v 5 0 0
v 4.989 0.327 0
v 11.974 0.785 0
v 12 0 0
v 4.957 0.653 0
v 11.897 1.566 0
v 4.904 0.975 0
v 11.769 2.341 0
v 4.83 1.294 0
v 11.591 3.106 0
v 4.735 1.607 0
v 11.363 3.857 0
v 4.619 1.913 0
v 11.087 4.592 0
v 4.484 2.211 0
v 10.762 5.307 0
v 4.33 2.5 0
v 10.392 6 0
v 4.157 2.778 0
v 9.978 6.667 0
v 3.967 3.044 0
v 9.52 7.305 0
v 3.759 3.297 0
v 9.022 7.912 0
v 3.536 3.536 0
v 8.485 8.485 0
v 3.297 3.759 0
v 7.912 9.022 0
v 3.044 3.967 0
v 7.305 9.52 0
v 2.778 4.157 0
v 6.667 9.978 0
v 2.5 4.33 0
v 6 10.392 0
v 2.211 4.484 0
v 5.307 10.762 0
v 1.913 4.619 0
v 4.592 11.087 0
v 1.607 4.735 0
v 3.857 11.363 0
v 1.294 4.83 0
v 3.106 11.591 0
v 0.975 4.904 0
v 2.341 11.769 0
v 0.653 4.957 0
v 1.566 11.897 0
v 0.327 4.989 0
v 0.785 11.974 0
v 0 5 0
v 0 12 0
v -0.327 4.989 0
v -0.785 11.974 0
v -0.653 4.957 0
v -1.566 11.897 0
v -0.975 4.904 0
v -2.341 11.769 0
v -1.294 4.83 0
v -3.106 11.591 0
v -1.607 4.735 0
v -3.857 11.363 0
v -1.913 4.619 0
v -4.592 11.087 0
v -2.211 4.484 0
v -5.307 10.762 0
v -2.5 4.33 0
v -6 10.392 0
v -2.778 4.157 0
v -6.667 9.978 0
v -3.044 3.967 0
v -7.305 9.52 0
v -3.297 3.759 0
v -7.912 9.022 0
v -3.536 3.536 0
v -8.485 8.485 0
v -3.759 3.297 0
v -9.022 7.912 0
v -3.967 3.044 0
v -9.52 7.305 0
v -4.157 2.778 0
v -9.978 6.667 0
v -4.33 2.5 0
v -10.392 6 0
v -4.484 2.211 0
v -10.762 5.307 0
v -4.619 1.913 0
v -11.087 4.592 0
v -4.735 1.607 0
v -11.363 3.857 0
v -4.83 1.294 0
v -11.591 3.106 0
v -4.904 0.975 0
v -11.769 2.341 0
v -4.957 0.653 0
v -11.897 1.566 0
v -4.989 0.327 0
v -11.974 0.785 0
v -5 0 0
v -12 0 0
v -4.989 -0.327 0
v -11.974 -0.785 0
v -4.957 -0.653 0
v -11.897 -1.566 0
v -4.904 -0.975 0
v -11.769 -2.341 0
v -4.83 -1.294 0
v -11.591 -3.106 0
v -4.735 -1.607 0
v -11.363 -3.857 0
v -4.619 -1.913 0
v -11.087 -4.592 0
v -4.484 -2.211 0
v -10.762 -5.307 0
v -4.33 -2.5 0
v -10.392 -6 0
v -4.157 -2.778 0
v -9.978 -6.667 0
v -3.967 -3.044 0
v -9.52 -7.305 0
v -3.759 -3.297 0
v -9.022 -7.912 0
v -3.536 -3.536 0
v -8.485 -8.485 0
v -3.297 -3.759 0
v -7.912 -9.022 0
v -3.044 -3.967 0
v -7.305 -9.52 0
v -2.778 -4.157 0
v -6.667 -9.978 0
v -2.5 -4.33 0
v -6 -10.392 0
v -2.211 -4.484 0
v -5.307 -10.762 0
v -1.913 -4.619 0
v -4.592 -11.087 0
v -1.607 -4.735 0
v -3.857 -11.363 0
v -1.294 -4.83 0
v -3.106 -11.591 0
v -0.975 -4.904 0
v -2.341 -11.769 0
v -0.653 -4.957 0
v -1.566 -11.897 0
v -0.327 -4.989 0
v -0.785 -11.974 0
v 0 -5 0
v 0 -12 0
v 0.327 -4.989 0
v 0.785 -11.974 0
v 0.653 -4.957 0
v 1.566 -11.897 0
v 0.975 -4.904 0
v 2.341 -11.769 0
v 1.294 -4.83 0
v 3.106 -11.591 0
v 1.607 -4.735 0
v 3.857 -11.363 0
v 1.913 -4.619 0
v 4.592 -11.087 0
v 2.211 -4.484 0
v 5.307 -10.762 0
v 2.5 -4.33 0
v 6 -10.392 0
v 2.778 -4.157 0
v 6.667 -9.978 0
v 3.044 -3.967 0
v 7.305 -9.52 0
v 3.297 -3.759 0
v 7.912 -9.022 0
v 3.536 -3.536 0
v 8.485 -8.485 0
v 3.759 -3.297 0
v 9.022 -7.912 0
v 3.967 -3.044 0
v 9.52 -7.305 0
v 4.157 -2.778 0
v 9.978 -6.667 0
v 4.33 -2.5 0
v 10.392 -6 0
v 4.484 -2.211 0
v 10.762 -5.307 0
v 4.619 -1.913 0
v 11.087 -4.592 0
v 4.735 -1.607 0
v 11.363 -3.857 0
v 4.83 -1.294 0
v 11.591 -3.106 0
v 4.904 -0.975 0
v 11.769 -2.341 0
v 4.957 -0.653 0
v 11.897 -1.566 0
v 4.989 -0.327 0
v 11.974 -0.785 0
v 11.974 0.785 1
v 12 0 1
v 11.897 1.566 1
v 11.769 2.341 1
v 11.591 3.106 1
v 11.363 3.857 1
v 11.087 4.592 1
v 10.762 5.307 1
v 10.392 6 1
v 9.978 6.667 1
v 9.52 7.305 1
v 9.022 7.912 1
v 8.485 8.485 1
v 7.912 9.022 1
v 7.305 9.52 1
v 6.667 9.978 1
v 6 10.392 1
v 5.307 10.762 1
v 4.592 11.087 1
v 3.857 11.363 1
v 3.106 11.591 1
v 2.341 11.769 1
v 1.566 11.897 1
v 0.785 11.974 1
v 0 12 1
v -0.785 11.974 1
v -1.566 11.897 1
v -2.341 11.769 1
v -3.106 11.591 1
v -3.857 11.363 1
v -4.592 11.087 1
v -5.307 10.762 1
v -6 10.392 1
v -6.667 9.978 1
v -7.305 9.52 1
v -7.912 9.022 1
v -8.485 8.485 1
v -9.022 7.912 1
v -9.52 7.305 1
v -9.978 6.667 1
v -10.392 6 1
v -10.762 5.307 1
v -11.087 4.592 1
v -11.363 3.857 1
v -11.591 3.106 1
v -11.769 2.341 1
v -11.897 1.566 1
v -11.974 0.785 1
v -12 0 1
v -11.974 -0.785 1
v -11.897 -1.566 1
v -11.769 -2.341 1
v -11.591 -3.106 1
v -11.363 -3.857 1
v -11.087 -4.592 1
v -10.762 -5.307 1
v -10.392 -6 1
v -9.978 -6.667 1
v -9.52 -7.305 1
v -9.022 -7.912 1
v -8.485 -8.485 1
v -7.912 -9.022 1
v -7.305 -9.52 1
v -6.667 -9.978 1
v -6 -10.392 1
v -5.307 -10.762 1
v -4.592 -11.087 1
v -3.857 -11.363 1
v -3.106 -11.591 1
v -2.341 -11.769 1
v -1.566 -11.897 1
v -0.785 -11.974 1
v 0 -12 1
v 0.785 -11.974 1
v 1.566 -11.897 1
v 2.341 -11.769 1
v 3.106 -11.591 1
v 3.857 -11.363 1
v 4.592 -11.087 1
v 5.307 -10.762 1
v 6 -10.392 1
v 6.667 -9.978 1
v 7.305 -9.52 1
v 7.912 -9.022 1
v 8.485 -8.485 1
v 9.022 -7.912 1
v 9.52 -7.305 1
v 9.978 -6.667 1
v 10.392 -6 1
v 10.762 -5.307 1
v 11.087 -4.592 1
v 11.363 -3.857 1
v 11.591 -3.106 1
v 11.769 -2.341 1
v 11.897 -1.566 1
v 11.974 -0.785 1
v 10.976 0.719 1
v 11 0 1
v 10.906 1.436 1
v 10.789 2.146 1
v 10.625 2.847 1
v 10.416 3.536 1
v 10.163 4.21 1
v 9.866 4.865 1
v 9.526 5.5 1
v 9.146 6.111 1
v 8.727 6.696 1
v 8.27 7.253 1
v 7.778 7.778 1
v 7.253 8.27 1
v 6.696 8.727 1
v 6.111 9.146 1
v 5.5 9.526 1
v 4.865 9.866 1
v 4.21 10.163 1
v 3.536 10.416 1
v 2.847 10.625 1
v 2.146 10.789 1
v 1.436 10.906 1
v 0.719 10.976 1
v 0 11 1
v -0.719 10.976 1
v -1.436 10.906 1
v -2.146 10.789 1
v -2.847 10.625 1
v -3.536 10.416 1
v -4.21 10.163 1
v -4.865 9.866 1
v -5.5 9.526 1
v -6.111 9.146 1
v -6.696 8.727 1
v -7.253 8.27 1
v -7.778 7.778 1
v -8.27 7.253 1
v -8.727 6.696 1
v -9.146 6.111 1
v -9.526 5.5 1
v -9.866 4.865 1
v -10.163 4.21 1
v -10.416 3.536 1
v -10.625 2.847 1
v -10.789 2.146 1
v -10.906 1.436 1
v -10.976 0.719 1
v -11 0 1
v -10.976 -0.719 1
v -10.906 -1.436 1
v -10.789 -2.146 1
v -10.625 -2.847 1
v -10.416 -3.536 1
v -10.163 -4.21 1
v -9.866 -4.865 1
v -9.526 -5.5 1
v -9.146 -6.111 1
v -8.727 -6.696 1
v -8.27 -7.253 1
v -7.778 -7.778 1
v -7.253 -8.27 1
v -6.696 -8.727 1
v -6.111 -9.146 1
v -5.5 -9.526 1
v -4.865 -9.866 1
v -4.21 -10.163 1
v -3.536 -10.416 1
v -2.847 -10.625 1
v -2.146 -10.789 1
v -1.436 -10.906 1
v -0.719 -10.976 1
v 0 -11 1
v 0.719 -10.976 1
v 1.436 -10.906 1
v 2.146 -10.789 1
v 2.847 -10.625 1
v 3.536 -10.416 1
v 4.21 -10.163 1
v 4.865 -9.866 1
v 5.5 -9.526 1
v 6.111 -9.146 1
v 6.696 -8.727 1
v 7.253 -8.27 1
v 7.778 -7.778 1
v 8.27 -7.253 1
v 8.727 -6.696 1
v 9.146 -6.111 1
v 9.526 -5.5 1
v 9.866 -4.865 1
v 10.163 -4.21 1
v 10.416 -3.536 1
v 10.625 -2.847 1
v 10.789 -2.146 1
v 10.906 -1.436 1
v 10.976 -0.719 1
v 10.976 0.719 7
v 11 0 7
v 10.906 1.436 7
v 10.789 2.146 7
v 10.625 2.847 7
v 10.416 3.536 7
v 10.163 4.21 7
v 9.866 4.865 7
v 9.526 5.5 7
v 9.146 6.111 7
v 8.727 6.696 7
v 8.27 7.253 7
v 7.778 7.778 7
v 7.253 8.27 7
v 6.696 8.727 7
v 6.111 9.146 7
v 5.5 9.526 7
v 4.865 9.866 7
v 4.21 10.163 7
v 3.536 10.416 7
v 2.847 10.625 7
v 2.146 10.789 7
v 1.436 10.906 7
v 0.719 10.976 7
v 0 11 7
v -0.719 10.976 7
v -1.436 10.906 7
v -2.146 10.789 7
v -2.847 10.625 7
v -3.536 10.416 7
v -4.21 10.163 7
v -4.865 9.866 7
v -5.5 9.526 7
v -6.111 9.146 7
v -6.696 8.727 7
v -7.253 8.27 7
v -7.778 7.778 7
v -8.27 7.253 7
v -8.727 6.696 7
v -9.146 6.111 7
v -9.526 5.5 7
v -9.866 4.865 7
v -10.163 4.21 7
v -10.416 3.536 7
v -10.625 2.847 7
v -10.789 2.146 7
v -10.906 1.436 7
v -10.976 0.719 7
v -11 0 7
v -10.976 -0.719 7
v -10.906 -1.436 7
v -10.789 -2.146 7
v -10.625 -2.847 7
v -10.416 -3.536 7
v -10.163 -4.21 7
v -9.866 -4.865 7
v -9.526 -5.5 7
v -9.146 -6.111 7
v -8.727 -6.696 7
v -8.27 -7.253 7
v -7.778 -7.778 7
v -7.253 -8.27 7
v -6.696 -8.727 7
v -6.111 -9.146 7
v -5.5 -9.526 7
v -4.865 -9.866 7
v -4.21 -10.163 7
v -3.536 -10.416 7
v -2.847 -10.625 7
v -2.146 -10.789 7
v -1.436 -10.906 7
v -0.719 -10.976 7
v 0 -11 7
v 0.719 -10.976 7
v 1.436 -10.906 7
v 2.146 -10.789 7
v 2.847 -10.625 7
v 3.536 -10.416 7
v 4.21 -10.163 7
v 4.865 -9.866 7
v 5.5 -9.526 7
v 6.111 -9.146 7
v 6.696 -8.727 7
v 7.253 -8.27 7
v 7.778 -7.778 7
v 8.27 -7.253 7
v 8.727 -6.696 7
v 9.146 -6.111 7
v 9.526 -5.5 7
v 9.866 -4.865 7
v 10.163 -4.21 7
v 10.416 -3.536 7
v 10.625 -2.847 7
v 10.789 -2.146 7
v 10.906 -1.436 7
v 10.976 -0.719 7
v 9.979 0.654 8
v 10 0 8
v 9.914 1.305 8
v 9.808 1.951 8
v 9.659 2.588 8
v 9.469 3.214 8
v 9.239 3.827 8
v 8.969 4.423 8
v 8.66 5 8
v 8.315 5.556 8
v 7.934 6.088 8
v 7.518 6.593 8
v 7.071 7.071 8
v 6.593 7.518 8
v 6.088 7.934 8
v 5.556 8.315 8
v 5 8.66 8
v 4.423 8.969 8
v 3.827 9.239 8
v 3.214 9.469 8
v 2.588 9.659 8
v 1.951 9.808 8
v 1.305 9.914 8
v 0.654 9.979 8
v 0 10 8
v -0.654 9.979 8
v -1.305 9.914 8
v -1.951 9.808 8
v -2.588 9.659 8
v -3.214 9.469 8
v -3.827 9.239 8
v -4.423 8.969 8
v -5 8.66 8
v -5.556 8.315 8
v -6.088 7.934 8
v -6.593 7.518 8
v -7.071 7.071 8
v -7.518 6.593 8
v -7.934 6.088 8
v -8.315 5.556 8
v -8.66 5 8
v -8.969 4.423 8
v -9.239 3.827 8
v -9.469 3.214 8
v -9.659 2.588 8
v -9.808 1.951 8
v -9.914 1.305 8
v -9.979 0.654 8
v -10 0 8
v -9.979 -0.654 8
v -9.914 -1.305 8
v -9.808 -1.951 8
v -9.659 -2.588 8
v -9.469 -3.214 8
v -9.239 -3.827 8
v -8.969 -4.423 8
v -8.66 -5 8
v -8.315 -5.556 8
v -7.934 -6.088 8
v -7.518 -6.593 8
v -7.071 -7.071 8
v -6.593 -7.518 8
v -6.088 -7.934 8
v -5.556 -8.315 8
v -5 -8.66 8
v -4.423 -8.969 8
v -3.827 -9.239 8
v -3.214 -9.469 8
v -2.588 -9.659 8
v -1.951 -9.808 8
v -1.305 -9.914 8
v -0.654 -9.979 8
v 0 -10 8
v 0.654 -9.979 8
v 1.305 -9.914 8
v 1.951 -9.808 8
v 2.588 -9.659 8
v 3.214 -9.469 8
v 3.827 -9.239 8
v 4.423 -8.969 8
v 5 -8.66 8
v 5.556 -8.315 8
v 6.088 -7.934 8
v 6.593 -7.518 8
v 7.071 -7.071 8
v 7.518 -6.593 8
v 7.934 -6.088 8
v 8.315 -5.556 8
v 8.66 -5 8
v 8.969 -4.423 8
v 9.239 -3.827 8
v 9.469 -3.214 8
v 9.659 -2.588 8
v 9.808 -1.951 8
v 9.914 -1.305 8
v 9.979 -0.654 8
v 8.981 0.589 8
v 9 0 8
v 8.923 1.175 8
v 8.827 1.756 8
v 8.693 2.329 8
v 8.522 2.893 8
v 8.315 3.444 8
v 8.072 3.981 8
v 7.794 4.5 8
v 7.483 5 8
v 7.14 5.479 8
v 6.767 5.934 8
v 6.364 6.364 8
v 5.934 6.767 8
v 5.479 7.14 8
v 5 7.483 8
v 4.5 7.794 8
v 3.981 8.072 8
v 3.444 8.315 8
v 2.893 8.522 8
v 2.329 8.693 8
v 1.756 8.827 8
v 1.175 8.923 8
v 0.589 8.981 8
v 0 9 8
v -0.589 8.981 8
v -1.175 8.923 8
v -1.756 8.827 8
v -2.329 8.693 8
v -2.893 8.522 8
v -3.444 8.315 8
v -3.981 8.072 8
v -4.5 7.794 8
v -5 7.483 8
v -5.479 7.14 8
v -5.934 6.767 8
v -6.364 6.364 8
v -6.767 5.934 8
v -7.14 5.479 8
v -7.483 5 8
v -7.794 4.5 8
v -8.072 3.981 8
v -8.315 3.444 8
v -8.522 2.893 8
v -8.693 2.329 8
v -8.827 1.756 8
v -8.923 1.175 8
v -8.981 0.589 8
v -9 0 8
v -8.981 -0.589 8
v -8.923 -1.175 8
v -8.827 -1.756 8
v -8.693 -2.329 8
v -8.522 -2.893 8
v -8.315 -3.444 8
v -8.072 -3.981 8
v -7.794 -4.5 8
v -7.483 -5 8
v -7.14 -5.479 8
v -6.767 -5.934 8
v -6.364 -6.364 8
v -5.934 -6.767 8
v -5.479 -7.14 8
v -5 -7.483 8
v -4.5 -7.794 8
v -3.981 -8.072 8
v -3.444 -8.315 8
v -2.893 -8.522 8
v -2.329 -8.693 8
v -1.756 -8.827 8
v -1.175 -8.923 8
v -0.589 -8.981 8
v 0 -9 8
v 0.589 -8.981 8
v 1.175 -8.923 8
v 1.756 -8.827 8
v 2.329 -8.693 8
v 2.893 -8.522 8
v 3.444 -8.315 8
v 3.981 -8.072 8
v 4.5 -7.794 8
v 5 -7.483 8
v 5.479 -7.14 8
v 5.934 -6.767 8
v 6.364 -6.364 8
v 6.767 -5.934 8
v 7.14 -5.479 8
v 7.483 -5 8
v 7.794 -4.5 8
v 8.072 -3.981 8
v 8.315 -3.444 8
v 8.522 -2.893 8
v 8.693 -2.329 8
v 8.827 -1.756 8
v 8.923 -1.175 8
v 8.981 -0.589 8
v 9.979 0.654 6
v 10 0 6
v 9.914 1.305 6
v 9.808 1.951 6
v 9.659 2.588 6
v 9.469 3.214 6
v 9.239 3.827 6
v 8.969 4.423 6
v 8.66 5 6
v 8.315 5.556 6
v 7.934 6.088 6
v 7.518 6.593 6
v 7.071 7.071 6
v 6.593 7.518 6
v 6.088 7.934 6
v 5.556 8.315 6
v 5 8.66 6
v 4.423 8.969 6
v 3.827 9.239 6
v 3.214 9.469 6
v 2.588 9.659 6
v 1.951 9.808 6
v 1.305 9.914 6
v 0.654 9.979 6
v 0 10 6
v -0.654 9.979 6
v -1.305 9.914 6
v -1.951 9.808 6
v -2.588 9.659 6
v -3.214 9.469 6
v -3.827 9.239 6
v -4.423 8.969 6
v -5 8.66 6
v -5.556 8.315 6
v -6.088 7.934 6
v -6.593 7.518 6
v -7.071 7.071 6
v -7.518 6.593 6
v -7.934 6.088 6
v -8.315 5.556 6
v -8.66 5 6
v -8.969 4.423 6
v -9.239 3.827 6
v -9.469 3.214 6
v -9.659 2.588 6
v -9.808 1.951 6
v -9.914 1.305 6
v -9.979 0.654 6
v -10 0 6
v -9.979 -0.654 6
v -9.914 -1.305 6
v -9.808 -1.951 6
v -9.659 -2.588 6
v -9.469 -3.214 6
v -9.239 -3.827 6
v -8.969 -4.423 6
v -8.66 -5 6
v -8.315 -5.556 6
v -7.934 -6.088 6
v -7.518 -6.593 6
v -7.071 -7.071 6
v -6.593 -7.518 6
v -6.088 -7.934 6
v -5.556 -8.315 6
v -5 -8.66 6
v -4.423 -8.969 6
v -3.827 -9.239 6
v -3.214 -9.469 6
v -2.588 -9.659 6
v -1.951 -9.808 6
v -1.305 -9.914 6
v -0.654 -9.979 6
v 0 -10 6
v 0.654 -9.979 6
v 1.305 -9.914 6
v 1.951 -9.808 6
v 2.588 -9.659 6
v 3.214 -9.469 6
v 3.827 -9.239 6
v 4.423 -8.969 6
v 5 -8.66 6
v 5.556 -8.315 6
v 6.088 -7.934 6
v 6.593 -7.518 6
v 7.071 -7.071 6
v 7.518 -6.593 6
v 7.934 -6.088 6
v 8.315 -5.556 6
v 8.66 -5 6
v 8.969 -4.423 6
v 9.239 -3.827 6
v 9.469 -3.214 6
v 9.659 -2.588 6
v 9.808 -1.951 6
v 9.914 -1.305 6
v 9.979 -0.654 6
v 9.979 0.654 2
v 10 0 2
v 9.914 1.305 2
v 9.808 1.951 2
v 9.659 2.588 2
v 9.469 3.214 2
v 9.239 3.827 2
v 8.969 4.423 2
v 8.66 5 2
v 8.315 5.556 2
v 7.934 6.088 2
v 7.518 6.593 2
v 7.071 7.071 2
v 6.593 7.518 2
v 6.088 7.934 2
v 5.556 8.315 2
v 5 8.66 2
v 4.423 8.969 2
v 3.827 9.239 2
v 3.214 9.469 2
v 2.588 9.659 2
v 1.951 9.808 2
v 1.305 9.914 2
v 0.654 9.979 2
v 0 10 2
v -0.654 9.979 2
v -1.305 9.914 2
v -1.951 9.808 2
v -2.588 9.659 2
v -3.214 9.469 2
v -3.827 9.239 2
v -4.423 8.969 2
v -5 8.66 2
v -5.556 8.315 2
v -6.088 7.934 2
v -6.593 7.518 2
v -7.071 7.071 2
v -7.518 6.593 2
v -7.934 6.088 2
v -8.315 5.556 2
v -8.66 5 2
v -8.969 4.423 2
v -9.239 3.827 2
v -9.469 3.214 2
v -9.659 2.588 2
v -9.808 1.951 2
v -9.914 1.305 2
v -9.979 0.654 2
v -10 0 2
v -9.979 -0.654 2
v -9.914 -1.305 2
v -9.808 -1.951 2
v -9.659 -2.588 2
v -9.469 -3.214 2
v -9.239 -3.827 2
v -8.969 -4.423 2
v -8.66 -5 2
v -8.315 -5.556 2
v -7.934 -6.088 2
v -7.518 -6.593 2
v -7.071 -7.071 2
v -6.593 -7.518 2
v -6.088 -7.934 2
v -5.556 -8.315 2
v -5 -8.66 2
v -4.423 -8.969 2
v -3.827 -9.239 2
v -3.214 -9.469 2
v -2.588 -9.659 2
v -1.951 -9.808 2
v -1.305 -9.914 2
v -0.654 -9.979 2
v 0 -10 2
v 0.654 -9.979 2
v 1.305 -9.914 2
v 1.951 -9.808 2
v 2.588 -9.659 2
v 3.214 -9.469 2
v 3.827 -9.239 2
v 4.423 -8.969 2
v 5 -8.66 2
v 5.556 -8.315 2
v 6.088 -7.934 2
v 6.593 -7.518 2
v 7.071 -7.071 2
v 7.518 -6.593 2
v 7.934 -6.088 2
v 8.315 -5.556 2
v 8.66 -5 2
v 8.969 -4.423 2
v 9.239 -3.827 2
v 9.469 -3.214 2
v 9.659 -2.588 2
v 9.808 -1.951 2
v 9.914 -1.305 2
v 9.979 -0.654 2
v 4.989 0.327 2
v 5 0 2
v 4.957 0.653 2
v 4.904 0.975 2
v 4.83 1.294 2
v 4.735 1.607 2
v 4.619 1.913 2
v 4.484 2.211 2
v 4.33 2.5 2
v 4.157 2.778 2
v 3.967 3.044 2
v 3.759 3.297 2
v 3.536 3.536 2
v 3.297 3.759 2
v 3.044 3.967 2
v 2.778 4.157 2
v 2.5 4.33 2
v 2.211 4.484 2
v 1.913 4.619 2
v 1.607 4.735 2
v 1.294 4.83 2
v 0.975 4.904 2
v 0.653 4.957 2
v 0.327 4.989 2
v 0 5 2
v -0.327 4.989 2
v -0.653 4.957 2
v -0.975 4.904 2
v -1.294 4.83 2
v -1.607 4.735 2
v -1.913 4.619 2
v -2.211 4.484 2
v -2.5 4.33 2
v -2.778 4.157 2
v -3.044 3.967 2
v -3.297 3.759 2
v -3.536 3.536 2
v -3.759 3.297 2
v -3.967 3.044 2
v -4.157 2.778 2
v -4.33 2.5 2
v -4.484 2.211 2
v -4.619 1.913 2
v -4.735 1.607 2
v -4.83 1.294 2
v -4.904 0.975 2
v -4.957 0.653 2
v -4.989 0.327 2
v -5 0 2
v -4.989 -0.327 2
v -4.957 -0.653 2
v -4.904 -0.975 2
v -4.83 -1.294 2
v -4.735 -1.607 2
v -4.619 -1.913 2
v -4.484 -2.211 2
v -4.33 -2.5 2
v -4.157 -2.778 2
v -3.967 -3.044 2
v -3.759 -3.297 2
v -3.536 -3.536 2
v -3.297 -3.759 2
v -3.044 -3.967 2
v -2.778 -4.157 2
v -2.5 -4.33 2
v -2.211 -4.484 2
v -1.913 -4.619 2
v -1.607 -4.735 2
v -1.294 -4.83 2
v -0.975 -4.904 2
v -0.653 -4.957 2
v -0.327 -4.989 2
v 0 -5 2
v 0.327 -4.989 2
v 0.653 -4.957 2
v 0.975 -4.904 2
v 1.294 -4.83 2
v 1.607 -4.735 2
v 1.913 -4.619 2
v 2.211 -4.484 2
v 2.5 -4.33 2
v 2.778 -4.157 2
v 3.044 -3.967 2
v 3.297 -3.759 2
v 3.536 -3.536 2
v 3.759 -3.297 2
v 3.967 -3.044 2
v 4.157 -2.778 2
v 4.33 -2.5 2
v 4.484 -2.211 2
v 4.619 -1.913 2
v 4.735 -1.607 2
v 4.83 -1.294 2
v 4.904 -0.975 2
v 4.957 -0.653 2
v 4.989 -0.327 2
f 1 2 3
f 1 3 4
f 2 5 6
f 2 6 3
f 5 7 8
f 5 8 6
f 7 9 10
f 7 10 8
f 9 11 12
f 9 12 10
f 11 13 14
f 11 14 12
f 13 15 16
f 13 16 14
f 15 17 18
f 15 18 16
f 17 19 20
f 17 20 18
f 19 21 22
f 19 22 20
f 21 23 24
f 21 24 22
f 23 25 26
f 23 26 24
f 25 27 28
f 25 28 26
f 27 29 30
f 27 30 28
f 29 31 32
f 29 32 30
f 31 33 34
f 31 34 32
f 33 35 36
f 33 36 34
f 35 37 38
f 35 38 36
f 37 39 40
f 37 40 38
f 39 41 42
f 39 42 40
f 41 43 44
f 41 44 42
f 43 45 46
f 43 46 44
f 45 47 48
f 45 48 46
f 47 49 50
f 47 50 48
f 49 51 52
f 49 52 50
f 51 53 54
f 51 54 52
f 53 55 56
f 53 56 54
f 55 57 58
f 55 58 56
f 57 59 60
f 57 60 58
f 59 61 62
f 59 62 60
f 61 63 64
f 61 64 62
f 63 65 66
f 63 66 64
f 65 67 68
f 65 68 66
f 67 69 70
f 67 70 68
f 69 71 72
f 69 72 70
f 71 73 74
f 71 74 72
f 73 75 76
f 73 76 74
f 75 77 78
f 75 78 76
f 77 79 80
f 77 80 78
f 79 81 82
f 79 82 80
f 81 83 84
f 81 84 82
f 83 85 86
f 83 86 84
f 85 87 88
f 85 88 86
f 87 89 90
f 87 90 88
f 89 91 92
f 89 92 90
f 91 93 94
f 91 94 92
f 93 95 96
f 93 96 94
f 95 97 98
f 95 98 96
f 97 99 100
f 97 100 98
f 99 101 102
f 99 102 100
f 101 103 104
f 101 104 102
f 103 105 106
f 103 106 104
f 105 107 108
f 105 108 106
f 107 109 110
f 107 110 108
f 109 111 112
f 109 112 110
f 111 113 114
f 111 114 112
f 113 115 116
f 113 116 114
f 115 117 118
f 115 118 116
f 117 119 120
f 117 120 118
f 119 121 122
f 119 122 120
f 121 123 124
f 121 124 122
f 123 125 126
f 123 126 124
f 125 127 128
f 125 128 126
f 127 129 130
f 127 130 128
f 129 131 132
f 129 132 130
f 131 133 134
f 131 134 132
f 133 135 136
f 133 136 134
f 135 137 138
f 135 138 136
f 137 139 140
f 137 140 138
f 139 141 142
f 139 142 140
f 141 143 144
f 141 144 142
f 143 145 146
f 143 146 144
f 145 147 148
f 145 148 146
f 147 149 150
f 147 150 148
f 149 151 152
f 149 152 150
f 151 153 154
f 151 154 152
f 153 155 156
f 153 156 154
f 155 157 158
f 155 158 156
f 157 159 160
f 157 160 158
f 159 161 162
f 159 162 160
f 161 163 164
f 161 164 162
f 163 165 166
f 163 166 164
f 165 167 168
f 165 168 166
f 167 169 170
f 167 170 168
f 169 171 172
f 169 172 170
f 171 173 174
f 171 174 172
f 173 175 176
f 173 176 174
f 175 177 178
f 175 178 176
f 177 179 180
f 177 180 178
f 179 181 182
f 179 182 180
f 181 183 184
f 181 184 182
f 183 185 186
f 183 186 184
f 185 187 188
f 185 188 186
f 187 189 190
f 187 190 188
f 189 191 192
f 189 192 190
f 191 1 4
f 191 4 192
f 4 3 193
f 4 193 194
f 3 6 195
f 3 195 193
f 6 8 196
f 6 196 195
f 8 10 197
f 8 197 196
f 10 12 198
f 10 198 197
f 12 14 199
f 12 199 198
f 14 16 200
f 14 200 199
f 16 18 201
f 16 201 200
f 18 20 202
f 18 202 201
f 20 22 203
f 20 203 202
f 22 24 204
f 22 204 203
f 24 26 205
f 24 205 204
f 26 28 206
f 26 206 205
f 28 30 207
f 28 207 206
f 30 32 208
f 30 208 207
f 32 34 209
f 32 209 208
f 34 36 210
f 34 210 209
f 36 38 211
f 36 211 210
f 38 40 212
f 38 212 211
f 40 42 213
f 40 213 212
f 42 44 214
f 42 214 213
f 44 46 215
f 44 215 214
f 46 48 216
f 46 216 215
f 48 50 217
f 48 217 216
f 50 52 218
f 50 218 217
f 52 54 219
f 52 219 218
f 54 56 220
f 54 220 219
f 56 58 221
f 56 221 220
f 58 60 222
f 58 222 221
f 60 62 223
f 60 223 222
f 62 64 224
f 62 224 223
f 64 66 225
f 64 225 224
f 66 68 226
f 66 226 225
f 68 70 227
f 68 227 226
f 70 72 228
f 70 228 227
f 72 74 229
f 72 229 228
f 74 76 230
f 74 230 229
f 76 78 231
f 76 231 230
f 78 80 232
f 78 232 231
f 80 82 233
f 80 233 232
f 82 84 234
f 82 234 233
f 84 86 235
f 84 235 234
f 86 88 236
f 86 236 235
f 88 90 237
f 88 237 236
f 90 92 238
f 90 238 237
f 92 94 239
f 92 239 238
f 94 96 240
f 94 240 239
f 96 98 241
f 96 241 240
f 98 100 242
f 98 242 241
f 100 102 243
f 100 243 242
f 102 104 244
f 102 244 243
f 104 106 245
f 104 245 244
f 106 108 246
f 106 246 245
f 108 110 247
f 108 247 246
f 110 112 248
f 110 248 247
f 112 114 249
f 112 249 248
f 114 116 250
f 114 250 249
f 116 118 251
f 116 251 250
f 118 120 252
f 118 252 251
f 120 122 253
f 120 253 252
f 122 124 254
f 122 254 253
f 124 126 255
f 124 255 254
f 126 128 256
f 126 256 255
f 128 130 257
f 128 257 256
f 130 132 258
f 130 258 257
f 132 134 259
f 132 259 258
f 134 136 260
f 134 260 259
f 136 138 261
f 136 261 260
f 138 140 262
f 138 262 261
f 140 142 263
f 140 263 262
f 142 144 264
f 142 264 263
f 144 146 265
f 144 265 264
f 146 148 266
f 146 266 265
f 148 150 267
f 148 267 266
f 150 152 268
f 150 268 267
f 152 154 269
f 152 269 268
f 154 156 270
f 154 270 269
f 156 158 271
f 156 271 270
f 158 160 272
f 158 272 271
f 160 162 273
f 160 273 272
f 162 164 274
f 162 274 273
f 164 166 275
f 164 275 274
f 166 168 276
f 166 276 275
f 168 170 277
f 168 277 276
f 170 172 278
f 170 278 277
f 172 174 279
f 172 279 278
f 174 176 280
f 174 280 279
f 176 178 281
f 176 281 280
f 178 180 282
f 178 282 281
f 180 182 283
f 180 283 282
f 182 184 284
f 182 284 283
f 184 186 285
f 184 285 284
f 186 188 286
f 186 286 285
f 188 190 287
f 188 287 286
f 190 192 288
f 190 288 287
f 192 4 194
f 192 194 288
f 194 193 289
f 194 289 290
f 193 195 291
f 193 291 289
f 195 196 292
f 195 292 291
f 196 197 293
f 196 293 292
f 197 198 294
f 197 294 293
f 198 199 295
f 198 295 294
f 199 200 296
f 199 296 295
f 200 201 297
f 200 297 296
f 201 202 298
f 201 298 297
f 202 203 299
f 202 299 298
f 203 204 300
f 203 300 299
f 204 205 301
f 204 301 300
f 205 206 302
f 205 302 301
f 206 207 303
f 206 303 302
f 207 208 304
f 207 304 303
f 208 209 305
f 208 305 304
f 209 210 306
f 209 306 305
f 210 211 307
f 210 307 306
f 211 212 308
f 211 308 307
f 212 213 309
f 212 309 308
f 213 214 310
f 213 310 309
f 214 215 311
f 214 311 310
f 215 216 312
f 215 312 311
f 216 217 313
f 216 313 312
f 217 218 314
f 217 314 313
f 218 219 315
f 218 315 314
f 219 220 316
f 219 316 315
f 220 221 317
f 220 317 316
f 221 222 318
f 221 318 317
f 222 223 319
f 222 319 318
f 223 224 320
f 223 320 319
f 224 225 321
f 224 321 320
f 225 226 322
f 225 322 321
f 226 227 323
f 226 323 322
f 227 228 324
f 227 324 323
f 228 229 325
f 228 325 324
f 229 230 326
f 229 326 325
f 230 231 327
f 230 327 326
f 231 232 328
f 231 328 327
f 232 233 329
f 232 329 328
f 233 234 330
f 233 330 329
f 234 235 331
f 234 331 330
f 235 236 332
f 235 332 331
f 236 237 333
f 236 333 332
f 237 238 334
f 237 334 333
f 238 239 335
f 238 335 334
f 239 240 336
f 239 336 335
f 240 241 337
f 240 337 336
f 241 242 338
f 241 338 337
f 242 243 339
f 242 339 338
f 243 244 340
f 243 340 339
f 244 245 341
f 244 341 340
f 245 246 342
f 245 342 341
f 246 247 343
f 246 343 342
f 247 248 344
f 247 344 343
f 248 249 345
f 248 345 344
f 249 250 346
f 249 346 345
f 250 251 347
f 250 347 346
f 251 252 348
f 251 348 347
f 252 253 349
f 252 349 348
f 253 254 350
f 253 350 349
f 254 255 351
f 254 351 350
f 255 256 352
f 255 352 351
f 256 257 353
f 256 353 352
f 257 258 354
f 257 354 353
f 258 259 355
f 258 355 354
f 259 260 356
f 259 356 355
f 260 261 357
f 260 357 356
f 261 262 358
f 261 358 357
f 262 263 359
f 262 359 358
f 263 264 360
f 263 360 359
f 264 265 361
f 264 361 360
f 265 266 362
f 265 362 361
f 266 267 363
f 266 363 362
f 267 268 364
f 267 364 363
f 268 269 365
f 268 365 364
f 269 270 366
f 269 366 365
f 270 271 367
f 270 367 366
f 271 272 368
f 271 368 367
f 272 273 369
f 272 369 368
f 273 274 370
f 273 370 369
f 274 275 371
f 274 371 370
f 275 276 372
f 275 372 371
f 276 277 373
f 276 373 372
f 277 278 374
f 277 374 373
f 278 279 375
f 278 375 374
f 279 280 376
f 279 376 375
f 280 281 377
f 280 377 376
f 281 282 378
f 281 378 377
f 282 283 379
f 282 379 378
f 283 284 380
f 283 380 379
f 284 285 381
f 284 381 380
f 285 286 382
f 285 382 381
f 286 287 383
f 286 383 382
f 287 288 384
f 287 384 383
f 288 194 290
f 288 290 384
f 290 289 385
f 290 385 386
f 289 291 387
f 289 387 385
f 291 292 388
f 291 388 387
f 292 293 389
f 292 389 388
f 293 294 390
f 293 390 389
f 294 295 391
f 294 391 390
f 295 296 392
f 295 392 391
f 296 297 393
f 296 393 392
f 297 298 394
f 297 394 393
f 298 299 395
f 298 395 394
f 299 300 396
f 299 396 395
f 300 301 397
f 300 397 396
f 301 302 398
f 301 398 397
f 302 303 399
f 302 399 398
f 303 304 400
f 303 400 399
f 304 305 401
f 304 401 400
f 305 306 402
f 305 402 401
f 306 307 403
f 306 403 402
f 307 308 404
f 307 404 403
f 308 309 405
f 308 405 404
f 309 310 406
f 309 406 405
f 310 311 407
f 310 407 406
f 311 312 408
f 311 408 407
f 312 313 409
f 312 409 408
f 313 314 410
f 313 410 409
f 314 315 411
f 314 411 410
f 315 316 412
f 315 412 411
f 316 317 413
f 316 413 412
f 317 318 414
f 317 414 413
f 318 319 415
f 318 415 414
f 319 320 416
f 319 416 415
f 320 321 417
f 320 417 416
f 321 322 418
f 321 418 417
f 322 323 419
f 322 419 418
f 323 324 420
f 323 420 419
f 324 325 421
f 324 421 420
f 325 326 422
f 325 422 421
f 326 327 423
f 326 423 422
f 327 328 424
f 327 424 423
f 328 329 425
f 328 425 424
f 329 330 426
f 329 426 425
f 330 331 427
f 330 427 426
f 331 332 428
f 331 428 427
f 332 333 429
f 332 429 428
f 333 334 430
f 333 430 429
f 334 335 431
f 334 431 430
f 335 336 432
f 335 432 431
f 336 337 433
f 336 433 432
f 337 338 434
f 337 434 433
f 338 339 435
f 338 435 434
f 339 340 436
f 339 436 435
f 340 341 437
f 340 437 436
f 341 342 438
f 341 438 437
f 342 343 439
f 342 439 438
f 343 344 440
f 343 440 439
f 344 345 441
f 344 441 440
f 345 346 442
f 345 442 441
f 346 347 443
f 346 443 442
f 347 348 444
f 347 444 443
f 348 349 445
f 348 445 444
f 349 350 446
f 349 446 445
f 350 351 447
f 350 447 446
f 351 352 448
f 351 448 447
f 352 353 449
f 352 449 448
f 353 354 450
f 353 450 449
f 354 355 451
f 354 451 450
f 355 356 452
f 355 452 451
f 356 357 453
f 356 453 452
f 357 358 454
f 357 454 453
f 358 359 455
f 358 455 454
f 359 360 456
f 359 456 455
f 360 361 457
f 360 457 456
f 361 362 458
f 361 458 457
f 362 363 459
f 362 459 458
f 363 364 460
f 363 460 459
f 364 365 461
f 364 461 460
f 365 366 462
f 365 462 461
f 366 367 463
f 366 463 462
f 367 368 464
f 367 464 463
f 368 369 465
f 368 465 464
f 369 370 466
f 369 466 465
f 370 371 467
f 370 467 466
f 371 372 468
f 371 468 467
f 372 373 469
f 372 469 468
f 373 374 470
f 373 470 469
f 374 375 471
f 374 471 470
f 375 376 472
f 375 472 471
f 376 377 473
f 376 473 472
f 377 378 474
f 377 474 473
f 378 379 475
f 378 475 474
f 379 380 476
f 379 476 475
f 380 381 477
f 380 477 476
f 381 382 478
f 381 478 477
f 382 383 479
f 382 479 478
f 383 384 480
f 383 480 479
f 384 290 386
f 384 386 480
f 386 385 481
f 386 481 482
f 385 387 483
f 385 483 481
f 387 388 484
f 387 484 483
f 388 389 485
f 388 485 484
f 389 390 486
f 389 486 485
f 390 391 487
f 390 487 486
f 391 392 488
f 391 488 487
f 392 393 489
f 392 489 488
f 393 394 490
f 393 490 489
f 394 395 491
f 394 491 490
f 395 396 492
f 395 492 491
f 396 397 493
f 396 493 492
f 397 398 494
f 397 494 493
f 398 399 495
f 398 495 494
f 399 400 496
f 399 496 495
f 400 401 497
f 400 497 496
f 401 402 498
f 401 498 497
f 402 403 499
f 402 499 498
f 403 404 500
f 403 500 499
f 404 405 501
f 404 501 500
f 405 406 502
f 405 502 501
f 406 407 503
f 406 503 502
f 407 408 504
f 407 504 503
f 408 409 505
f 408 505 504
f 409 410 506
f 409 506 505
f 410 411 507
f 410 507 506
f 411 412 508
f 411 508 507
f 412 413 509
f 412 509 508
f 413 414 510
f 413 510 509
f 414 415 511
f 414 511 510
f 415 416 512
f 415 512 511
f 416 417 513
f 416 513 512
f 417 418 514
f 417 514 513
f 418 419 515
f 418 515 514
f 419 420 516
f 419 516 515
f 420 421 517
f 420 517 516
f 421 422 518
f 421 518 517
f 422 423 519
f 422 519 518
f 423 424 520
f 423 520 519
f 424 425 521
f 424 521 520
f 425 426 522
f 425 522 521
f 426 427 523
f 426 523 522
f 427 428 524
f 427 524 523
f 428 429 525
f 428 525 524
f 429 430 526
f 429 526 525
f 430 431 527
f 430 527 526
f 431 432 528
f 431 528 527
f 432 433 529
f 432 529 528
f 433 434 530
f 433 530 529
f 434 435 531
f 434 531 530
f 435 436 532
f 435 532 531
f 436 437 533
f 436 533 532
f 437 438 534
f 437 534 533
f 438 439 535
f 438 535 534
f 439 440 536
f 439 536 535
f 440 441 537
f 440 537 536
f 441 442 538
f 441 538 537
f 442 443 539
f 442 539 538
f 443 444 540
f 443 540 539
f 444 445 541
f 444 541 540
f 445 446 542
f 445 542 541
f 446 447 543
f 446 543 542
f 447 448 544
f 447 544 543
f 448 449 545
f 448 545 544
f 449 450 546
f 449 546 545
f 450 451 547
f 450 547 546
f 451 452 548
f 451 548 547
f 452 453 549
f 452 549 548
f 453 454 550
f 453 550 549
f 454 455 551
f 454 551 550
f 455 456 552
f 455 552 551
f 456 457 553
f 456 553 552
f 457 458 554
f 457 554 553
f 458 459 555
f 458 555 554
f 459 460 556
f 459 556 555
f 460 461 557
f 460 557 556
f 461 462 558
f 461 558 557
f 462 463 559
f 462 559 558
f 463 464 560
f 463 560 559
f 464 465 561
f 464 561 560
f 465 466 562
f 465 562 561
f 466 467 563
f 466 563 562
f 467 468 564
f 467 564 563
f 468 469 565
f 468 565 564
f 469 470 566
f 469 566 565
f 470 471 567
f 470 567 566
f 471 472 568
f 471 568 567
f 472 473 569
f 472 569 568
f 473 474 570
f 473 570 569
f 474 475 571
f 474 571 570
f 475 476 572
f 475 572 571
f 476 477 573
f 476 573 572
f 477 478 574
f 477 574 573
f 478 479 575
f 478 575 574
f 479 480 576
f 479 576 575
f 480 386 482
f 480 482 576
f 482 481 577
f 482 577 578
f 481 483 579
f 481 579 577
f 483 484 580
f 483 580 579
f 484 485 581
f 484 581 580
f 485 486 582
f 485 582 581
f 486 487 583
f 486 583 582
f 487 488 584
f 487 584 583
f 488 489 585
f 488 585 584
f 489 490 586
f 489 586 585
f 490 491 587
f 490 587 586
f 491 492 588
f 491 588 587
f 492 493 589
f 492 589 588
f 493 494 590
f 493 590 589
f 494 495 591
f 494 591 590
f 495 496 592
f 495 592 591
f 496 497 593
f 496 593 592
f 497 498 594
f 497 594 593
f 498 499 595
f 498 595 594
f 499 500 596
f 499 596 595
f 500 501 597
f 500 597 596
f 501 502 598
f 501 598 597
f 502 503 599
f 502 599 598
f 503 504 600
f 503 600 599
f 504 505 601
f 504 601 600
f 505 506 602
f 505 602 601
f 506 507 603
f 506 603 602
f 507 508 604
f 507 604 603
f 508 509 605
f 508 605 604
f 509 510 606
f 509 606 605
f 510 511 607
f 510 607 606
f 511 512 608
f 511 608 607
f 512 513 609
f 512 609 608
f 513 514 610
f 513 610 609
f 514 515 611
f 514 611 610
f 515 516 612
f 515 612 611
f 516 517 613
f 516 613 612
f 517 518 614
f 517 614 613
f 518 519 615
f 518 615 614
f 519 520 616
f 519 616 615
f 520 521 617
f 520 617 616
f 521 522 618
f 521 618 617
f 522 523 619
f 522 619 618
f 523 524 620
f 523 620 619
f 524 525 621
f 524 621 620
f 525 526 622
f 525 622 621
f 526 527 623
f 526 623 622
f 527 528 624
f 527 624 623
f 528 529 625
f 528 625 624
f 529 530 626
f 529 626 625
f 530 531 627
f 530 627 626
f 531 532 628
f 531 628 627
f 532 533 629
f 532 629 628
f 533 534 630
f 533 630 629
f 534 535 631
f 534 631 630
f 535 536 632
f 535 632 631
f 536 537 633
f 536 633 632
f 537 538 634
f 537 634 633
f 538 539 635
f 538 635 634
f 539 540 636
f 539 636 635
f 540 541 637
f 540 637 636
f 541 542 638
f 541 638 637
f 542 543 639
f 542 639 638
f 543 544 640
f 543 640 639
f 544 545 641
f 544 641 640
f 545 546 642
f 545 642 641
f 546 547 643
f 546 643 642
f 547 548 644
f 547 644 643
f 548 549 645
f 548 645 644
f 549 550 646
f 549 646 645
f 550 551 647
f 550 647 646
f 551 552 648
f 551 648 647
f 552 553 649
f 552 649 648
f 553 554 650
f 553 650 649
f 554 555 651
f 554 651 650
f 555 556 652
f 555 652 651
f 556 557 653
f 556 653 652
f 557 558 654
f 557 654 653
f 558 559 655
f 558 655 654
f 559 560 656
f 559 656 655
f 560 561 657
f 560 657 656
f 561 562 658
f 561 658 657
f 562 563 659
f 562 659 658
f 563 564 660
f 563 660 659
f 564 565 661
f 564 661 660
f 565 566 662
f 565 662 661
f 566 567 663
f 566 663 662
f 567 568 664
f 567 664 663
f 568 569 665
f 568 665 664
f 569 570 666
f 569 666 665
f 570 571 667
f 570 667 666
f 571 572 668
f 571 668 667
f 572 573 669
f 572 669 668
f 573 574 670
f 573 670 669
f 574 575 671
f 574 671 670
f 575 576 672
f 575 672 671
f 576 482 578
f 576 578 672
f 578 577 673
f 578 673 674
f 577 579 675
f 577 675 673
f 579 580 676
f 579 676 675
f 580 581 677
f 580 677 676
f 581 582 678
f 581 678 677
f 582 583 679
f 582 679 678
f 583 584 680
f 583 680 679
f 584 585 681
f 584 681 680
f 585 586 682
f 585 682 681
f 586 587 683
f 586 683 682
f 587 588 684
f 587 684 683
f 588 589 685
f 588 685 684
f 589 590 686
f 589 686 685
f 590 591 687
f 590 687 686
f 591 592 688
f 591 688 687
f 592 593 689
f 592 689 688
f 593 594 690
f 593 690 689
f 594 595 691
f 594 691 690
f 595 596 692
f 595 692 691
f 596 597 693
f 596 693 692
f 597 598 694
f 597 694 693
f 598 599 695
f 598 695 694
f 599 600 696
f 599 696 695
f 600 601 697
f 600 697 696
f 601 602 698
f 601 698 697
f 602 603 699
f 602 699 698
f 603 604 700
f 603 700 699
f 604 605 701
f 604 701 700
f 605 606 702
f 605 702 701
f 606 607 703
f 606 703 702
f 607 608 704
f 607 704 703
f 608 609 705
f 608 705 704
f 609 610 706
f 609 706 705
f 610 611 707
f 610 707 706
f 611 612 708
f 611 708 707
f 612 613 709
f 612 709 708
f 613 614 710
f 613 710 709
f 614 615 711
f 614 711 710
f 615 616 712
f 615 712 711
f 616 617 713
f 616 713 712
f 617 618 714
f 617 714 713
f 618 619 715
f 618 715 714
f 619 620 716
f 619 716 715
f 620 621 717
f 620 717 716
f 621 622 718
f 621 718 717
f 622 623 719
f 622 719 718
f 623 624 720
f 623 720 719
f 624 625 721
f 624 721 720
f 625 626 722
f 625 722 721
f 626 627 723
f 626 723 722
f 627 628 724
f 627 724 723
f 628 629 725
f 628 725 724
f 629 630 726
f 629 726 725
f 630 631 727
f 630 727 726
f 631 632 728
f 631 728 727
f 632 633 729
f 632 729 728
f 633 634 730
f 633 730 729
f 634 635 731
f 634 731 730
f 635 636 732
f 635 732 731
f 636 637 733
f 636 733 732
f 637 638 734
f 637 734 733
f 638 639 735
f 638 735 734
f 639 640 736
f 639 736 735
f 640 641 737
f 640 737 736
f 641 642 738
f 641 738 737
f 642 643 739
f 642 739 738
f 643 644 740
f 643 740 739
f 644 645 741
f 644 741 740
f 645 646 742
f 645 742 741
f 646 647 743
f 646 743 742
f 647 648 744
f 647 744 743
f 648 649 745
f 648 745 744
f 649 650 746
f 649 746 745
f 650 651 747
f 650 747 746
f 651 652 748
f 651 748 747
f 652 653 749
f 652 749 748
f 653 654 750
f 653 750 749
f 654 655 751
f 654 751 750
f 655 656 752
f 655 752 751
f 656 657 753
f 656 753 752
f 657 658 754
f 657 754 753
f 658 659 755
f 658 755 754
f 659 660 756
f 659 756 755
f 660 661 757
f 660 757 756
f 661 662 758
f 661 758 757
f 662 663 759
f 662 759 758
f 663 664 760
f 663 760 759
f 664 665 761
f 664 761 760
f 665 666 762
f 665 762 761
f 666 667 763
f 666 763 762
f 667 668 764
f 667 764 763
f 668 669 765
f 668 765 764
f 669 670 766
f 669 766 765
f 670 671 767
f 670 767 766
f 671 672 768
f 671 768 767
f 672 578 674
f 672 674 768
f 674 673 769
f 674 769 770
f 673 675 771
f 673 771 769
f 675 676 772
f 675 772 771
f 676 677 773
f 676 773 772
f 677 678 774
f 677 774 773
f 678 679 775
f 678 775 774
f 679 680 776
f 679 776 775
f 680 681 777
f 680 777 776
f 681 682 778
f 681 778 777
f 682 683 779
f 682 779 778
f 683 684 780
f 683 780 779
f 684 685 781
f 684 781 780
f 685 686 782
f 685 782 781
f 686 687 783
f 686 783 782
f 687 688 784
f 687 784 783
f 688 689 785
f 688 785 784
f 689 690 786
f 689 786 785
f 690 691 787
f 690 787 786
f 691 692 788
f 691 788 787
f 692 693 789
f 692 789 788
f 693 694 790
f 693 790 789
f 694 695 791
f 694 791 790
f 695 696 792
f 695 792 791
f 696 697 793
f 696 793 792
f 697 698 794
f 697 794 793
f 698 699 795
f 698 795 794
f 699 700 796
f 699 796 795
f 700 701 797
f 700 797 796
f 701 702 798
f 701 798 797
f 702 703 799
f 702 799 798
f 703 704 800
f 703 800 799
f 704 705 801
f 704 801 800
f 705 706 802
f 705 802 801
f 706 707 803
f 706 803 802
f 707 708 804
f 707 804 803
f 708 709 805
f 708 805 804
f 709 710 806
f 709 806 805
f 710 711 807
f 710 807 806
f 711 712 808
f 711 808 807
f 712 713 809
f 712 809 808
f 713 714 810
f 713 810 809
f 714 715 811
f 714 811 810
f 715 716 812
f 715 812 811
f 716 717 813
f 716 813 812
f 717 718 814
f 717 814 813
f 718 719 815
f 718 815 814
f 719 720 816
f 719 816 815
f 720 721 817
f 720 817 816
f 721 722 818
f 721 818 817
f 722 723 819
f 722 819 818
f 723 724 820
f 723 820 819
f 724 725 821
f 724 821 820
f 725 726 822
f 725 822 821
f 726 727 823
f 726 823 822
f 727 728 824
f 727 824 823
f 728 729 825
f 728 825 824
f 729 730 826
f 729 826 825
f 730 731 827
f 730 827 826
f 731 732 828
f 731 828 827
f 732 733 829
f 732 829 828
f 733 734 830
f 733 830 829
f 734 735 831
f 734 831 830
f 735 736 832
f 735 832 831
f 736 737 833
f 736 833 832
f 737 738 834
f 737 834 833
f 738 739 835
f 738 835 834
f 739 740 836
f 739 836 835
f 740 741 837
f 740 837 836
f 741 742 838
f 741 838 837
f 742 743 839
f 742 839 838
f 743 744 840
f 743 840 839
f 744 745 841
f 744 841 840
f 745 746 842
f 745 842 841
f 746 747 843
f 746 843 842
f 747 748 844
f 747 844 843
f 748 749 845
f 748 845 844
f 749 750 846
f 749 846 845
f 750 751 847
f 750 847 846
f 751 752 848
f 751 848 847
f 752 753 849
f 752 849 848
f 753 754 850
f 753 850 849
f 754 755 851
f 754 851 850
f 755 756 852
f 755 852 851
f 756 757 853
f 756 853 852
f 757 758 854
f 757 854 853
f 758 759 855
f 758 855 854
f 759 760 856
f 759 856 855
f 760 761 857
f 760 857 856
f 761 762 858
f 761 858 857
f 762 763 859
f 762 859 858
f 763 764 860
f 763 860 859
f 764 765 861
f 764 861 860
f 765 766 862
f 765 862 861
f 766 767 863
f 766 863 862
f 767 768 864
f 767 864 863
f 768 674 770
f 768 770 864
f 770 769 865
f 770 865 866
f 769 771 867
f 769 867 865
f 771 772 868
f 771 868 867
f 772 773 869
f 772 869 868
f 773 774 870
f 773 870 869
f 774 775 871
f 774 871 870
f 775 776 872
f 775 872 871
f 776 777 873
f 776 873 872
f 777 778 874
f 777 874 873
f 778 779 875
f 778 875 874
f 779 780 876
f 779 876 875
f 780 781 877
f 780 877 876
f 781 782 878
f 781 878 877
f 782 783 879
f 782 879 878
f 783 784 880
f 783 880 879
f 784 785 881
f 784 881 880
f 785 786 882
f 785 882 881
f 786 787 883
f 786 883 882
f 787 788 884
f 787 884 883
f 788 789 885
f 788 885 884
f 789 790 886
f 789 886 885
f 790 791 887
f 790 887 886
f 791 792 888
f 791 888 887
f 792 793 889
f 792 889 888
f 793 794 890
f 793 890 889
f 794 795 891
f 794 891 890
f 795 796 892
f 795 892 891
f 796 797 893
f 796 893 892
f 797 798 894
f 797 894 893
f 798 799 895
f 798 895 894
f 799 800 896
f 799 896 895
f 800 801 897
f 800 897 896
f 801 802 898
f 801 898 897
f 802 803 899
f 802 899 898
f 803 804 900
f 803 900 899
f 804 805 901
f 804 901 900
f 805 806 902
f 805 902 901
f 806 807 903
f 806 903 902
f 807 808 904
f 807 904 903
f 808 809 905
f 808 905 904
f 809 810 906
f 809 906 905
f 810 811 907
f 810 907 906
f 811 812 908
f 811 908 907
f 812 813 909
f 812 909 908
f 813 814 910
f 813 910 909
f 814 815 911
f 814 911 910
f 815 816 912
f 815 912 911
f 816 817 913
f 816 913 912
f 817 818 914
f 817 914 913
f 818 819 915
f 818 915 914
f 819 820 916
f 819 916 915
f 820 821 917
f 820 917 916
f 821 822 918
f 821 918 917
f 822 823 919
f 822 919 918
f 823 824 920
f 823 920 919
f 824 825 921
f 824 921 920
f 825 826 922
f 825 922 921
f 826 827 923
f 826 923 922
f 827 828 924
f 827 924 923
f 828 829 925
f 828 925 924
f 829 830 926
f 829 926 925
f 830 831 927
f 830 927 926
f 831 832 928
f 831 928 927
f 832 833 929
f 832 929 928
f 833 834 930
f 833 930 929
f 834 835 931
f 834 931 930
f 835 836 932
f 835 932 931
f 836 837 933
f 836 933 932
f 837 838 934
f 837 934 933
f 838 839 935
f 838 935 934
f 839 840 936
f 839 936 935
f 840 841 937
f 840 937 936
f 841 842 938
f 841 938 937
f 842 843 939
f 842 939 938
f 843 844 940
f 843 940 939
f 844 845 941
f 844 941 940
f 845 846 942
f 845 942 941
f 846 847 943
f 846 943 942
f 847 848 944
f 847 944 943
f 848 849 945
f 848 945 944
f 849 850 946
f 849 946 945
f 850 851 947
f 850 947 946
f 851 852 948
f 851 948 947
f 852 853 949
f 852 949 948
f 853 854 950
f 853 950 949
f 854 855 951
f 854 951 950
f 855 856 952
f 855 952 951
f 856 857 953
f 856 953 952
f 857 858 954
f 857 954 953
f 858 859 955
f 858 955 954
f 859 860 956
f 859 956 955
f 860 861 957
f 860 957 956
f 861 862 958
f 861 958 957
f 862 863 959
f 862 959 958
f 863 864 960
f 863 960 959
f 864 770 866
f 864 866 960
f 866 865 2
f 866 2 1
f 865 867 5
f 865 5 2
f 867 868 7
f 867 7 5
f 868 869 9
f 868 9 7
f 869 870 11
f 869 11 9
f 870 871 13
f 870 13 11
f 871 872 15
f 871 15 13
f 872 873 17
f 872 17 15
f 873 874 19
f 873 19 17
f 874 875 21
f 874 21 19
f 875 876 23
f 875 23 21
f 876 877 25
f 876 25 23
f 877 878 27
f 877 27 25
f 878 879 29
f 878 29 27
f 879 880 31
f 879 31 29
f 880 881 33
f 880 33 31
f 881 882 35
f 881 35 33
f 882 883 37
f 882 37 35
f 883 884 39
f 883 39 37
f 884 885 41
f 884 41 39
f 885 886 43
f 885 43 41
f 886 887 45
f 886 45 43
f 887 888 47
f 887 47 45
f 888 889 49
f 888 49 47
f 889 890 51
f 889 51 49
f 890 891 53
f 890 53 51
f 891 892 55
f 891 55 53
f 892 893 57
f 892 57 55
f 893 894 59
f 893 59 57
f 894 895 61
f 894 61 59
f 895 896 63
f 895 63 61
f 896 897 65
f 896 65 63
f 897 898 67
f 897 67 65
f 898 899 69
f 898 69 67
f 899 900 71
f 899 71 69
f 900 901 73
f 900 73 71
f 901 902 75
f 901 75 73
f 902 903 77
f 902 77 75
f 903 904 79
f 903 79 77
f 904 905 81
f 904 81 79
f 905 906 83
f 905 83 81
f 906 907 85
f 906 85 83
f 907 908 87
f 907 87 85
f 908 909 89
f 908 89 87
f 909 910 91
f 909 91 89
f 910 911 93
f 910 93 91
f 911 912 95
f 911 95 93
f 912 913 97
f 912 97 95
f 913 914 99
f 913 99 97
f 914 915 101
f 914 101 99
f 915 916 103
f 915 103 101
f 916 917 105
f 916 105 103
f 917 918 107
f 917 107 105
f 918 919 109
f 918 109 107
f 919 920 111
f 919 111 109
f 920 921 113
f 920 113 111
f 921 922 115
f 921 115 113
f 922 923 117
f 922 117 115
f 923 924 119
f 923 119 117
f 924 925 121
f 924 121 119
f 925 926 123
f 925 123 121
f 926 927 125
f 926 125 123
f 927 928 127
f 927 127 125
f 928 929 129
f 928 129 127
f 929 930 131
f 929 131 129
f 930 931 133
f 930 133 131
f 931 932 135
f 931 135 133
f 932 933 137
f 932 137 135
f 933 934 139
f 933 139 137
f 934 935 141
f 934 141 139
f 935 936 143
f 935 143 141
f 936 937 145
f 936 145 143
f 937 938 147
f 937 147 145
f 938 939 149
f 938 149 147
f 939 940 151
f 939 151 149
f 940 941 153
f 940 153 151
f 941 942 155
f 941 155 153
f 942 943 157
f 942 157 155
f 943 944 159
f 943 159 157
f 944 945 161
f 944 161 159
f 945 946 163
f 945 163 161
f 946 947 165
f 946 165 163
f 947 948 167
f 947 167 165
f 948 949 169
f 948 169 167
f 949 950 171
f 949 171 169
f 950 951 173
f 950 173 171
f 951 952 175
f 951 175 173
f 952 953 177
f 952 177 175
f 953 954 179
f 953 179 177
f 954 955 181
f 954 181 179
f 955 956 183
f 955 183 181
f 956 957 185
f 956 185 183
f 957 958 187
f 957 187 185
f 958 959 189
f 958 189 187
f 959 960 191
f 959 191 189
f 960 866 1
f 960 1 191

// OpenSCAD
// Original MechIntel educational model. CC0-1.0. Units: mm.
// Not a standardized or load-rated component.
$fn=96;
// Section points: [radius, height], mm. Edit to change the profile.
section=[[5, 0], [12, 0], [12, 1], [11, 1], [11, 7], [10, 8], [9, 8], [10, 6], [10, 2], [5, 2]];
rotate_extrude($fn=96) polygon(points=section);
